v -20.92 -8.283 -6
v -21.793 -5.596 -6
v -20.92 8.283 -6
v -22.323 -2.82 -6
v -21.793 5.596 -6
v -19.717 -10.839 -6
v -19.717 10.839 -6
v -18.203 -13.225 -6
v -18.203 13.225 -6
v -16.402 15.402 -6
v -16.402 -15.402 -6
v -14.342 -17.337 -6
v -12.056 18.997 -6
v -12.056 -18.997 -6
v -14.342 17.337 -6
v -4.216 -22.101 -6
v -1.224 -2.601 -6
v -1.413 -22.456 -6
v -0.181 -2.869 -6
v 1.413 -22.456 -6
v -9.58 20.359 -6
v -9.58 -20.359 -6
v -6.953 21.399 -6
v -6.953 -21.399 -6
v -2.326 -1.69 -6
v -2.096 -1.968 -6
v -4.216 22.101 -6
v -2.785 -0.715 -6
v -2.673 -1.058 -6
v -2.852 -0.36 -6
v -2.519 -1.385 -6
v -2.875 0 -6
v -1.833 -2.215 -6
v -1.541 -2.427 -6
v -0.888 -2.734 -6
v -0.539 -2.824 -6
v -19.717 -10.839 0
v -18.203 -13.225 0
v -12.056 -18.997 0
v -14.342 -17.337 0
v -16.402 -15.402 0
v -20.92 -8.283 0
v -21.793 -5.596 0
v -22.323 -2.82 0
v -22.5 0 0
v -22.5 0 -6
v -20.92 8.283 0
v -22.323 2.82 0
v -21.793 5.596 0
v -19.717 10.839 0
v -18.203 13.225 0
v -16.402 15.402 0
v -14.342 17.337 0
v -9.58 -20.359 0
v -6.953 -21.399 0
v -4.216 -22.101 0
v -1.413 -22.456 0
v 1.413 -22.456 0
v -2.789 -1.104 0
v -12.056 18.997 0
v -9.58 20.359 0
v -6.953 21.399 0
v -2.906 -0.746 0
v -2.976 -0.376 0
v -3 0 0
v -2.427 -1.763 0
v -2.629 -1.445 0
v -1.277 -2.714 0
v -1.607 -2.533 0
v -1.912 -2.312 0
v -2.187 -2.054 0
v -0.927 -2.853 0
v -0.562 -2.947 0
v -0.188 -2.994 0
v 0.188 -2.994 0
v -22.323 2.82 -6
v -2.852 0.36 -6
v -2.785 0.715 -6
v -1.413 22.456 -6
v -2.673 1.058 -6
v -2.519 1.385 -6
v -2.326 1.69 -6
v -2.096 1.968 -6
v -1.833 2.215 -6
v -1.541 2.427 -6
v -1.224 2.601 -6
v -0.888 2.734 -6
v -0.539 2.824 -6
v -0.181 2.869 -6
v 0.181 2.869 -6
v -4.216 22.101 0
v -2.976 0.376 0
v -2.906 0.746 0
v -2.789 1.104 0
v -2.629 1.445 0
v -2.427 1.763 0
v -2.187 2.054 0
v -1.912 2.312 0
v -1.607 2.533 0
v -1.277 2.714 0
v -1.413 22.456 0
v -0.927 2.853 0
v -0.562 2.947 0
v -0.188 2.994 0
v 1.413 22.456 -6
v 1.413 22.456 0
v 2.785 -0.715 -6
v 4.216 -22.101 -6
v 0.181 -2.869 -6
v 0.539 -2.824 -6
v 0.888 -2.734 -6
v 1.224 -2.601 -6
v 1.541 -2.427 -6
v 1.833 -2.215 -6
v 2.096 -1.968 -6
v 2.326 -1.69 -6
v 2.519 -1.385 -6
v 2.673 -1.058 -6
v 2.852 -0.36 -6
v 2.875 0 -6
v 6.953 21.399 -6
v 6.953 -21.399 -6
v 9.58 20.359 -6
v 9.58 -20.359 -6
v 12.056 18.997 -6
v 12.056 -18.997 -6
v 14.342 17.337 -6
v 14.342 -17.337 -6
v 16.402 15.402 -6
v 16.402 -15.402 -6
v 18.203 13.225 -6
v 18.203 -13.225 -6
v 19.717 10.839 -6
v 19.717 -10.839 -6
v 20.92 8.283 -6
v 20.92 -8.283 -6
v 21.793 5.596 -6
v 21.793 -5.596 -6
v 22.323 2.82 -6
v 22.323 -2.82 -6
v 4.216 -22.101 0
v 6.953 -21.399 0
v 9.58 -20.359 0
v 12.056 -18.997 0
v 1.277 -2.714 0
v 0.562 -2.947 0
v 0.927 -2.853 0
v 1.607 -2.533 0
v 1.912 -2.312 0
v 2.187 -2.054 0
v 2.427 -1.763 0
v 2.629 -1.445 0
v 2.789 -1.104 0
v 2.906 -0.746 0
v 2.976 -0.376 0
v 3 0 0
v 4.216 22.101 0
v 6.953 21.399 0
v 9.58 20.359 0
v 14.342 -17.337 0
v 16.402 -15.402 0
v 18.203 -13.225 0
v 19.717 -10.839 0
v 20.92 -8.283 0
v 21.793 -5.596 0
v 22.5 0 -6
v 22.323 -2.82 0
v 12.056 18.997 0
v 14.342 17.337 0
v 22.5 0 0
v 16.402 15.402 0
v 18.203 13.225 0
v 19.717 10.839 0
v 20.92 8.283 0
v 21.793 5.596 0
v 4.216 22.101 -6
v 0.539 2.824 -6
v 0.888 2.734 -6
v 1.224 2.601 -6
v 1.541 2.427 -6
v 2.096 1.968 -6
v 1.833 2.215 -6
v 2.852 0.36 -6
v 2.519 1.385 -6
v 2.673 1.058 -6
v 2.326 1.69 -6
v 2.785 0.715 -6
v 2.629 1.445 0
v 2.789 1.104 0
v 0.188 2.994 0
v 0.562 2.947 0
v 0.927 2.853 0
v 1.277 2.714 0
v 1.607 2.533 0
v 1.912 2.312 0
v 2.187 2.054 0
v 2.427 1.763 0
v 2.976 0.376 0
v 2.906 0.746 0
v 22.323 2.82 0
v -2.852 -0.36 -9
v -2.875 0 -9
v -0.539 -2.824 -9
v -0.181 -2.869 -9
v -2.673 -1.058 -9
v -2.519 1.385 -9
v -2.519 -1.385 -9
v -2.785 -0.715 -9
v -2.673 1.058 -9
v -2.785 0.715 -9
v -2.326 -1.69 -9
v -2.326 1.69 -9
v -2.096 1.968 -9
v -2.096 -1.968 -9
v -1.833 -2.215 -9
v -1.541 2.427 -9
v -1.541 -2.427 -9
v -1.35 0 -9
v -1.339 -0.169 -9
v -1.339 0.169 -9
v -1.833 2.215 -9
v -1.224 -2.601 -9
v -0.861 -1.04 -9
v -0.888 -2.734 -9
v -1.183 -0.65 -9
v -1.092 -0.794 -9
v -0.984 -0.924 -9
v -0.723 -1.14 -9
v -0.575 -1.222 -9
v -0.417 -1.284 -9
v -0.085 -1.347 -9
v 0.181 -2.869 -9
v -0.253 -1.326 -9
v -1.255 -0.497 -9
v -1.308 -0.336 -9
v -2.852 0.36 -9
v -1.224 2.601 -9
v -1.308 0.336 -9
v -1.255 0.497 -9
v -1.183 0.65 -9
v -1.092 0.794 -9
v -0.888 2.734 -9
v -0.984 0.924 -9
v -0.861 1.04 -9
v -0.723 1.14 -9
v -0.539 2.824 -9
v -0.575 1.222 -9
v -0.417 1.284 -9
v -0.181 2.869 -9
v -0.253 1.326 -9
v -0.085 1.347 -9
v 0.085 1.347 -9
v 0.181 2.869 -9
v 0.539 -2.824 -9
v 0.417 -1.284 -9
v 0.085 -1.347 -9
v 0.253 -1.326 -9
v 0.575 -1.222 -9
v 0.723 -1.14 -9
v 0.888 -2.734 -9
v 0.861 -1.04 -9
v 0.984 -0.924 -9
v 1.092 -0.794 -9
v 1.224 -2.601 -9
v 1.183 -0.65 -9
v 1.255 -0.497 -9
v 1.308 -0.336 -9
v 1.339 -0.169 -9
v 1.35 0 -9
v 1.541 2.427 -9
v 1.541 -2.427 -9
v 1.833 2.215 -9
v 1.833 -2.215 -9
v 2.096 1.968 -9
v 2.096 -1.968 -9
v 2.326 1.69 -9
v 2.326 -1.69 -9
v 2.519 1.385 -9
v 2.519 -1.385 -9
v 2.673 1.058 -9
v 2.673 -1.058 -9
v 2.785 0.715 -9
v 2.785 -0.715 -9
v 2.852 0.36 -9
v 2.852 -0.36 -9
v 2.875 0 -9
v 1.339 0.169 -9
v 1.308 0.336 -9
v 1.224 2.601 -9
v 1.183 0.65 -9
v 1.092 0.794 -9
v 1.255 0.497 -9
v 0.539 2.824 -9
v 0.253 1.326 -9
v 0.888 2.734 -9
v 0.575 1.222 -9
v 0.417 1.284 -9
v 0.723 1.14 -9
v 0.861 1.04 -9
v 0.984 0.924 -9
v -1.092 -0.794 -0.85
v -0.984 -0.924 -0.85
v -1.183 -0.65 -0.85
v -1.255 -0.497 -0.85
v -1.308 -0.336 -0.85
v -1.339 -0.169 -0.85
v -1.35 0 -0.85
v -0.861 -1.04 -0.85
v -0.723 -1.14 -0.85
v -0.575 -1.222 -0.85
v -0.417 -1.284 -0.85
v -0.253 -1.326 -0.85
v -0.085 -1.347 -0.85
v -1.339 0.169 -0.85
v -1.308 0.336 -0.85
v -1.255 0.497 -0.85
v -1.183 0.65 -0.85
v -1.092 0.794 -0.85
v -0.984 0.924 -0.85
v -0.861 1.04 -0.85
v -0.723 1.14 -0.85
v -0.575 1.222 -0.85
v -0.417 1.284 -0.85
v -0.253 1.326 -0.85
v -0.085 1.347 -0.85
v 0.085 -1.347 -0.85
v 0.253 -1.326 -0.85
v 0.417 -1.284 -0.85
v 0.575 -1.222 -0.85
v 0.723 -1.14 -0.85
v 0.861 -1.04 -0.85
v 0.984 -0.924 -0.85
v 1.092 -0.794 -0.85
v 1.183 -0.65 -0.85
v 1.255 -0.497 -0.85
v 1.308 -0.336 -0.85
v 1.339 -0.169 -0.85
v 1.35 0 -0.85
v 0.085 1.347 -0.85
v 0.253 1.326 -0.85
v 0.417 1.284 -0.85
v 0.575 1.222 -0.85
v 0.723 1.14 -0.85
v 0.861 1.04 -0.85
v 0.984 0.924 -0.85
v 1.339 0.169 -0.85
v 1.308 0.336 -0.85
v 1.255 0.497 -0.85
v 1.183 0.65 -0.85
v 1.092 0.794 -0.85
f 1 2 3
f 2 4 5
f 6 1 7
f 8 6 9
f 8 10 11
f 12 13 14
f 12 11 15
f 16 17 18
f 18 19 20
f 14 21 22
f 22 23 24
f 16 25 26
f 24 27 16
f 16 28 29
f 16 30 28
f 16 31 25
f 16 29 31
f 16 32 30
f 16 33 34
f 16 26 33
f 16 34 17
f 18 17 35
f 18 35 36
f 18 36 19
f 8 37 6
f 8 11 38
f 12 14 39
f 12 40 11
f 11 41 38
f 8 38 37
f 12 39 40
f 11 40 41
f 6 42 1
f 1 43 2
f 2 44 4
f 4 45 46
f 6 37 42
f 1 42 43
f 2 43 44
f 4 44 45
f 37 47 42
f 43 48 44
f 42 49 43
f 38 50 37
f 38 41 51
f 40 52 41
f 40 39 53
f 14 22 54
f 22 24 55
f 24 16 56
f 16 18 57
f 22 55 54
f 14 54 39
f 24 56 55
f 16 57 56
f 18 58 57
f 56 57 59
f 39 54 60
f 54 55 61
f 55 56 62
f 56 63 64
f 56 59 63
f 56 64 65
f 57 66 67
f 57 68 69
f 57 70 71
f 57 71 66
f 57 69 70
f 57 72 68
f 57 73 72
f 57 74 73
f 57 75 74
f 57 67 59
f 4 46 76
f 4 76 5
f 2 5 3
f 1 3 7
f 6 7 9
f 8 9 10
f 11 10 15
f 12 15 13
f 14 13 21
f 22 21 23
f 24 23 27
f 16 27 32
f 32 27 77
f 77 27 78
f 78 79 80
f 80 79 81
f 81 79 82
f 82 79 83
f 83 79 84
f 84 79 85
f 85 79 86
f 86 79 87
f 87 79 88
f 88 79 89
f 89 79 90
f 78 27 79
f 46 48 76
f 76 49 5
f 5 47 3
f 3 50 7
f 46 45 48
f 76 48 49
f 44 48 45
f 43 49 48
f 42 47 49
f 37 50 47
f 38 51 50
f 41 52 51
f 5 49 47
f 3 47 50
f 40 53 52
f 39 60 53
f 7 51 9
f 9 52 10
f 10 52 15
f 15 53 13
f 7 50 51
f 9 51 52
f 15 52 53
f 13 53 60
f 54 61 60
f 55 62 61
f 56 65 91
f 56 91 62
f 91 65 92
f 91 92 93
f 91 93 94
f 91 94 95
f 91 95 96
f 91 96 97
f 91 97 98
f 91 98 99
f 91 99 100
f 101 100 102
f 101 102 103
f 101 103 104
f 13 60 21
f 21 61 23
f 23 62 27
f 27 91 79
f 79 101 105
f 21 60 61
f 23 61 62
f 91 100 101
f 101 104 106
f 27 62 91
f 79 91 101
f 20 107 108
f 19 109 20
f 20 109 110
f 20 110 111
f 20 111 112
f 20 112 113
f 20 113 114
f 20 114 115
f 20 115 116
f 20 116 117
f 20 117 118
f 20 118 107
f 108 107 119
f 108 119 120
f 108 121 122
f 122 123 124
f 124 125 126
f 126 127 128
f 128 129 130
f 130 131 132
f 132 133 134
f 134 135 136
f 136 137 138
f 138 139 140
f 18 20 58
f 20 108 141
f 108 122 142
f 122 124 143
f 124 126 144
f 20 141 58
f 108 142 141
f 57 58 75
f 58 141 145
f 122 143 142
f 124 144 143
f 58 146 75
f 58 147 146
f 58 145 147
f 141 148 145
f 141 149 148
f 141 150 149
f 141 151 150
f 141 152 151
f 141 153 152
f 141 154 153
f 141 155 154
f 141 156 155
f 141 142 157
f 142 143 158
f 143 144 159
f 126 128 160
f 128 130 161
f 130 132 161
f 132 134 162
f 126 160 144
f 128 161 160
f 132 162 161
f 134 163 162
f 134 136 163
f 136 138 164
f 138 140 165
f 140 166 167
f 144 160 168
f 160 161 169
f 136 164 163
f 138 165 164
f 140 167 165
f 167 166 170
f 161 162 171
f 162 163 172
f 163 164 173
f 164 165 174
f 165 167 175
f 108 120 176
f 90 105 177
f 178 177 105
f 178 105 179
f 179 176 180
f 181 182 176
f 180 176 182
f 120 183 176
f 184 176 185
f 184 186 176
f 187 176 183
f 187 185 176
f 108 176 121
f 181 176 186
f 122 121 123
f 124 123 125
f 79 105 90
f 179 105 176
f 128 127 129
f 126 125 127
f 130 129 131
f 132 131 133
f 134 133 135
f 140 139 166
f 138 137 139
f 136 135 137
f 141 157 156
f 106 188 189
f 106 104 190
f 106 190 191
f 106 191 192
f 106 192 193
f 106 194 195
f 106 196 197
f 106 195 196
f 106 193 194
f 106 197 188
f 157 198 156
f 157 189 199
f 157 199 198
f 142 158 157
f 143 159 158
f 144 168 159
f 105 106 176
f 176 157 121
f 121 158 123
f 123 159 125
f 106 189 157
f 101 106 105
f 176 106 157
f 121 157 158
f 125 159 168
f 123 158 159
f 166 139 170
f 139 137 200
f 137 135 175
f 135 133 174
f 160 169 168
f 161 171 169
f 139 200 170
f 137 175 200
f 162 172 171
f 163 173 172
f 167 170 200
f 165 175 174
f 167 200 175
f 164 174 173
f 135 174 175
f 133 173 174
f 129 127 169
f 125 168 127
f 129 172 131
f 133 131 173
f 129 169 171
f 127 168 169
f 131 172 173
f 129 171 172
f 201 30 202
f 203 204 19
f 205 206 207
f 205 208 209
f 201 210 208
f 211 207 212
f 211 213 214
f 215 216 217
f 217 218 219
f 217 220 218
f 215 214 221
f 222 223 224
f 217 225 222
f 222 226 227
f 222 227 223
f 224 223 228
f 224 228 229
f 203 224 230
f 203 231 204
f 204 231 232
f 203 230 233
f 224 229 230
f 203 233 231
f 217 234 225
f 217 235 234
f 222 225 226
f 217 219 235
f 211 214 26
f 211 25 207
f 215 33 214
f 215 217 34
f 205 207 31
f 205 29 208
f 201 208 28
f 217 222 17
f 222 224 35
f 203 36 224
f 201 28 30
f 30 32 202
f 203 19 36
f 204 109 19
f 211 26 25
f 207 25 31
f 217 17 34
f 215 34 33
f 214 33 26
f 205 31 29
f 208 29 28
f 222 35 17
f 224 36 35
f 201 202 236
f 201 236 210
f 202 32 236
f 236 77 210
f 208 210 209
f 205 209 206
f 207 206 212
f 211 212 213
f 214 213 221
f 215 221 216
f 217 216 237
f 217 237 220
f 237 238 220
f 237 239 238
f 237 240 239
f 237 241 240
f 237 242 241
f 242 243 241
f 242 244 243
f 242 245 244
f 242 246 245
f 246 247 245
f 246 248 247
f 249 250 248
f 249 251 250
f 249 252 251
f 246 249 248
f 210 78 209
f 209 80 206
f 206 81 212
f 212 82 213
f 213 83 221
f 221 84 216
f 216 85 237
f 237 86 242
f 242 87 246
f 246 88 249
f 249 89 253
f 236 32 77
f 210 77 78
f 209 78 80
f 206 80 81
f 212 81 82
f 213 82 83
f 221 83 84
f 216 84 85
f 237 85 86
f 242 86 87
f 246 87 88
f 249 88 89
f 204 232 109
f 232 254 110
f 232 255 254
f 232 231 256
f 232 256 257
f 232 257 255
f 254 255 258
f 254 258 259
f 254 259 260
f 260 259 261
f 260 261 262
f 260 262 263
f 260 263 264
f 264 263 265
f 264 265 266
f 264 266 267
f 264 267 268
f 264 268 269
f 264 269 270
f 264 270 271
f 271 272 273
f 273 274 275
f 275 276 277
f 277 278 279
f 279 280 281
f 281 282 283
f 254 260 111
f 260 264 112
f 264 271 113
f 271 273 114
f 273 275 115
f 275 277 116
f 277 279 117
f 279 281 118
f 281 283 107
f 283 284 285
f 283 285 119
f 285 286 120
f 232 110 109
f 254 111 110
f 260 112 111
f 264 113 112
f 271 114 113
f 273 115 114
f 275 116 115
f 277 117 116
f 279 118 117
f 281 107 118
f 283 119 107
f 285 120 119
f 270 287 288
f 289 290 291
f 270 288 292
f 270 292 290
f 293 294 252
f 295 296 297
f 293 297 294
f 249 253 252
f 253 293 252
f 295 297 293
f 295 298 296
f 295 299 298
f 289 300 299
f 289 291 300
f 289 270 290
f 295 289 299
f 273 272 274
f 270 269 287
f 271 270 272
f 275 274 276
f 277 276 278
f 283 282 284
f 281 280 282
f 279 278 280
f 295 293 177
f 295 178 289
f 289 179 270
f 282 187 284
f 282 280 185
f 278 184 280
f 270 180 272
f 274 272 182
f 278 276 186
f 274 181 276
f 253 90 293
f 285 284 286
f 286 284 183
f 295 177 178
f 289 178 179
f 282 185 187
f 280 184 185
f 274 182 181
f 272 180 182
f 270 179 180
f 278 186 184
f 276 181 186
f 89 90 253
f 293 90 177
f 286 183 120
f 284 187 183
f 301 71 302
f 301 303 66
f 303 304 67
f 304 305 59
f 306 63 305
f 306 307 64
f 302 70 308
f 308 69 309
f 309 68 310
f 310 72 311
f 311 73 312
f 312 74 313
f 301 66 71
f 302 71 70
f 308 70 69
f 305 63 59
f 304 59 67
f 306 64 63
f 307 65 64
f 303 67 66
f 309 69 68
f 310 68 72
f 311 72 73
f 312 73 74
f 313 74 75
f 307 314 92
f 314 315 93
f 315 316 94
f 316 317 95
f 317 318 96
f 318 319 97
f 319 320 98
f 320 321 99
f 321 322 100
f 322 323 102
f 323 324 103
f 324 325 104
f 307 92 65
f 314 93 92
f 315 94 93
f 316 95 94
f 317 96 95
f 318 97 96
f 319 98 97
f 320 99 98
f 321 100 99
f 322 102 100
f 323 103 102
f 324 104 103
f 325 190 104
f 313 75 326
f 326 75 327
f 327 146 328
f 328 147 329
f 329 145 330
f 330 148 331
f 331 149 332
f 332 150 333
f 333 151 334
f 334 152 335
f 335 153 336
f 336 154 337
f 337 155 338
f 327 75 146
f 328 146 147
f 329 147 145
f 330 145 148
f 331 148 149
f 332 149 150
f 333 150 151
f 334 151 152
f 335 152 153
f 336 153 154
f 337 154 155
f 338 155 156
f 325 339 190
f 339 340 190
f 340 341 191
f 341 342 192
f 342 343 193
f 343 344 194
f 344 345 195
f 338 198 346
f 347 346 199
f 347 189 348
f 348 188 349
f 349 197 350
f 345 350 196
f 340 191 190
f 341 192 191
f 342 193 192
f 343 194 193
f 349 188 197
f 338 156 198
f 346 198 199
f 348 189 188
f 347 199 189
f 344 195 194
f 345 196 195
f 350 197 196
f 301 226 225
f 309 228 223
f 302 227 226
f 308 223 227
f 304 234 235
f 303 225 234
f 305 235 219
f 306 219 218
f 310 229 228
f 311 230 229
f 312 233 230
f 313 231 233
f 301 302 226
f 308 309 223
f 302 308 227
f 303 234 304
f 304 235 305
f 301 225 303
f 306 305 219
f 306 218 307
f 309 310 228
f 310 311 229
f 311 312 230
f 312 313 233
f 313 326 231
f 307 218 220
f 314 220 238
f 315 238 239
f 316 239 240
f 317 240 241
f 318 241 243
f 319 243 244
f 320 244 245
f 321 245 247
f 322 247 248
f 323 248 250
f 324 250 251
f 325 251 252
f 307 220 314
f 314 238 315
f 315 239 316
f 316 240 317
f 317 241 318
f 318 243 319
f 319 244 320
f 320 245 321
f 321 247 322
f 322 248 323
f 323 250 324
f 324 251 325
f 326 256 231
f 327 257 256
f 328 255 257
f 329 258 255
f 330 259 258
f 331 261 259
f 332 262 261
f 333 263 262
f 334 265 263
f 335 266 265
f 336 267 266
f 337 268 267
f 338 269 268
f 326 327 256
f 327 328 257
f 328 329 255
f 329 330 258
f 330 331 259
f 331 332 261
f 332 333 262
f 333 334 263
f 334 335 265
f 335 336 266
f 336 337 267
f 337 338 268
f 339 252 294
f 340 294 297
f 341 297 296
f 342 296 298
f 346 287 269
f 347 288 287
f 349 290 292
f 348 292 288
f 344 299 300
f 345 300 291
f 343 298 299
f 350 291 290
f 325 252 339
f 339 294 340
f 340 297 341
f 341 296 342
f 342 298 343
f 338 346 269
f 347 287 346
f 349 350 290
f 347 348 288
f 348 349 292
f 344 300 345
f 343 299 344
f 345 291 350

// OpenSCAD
$fn = 50;


difference() {
	union() {
		translate(v = [0, 0, -6.0000000000]) {
			cylinder(h = 6, r = 22.5000000000);
		}
		#translate(v = [0, 0, -9.0000000000]) {
			cylinder(h = 9, r = 2.8750000000);
		}
	}
	union() {
		translate(v = [0, 0, 0]) {
			rotate(a = [0, 0, 0]) {
				difference() {
					union() {
						translate(v = [0, 0, -9.0000000000]) {
							cylinder(h = 9, r = 1.0000000000);
						}
						translate(v = [0, 0, -0.8500000000]) {
							cylinder(h = 0.8500000000, r1 = 1.3500000000, r2 = 3.0000000000);
						}
						translate(v = [0, 0, -9.0000000000]) {
							cylinder(h = 9, r = 1.3500000000);
						}
						translate(v = [0, 0, -9.0000000000]) {
							cylinder(h = 9, r = 1.0000000000);
						}
					}
					union();
				}
			}
		}
	}
}
